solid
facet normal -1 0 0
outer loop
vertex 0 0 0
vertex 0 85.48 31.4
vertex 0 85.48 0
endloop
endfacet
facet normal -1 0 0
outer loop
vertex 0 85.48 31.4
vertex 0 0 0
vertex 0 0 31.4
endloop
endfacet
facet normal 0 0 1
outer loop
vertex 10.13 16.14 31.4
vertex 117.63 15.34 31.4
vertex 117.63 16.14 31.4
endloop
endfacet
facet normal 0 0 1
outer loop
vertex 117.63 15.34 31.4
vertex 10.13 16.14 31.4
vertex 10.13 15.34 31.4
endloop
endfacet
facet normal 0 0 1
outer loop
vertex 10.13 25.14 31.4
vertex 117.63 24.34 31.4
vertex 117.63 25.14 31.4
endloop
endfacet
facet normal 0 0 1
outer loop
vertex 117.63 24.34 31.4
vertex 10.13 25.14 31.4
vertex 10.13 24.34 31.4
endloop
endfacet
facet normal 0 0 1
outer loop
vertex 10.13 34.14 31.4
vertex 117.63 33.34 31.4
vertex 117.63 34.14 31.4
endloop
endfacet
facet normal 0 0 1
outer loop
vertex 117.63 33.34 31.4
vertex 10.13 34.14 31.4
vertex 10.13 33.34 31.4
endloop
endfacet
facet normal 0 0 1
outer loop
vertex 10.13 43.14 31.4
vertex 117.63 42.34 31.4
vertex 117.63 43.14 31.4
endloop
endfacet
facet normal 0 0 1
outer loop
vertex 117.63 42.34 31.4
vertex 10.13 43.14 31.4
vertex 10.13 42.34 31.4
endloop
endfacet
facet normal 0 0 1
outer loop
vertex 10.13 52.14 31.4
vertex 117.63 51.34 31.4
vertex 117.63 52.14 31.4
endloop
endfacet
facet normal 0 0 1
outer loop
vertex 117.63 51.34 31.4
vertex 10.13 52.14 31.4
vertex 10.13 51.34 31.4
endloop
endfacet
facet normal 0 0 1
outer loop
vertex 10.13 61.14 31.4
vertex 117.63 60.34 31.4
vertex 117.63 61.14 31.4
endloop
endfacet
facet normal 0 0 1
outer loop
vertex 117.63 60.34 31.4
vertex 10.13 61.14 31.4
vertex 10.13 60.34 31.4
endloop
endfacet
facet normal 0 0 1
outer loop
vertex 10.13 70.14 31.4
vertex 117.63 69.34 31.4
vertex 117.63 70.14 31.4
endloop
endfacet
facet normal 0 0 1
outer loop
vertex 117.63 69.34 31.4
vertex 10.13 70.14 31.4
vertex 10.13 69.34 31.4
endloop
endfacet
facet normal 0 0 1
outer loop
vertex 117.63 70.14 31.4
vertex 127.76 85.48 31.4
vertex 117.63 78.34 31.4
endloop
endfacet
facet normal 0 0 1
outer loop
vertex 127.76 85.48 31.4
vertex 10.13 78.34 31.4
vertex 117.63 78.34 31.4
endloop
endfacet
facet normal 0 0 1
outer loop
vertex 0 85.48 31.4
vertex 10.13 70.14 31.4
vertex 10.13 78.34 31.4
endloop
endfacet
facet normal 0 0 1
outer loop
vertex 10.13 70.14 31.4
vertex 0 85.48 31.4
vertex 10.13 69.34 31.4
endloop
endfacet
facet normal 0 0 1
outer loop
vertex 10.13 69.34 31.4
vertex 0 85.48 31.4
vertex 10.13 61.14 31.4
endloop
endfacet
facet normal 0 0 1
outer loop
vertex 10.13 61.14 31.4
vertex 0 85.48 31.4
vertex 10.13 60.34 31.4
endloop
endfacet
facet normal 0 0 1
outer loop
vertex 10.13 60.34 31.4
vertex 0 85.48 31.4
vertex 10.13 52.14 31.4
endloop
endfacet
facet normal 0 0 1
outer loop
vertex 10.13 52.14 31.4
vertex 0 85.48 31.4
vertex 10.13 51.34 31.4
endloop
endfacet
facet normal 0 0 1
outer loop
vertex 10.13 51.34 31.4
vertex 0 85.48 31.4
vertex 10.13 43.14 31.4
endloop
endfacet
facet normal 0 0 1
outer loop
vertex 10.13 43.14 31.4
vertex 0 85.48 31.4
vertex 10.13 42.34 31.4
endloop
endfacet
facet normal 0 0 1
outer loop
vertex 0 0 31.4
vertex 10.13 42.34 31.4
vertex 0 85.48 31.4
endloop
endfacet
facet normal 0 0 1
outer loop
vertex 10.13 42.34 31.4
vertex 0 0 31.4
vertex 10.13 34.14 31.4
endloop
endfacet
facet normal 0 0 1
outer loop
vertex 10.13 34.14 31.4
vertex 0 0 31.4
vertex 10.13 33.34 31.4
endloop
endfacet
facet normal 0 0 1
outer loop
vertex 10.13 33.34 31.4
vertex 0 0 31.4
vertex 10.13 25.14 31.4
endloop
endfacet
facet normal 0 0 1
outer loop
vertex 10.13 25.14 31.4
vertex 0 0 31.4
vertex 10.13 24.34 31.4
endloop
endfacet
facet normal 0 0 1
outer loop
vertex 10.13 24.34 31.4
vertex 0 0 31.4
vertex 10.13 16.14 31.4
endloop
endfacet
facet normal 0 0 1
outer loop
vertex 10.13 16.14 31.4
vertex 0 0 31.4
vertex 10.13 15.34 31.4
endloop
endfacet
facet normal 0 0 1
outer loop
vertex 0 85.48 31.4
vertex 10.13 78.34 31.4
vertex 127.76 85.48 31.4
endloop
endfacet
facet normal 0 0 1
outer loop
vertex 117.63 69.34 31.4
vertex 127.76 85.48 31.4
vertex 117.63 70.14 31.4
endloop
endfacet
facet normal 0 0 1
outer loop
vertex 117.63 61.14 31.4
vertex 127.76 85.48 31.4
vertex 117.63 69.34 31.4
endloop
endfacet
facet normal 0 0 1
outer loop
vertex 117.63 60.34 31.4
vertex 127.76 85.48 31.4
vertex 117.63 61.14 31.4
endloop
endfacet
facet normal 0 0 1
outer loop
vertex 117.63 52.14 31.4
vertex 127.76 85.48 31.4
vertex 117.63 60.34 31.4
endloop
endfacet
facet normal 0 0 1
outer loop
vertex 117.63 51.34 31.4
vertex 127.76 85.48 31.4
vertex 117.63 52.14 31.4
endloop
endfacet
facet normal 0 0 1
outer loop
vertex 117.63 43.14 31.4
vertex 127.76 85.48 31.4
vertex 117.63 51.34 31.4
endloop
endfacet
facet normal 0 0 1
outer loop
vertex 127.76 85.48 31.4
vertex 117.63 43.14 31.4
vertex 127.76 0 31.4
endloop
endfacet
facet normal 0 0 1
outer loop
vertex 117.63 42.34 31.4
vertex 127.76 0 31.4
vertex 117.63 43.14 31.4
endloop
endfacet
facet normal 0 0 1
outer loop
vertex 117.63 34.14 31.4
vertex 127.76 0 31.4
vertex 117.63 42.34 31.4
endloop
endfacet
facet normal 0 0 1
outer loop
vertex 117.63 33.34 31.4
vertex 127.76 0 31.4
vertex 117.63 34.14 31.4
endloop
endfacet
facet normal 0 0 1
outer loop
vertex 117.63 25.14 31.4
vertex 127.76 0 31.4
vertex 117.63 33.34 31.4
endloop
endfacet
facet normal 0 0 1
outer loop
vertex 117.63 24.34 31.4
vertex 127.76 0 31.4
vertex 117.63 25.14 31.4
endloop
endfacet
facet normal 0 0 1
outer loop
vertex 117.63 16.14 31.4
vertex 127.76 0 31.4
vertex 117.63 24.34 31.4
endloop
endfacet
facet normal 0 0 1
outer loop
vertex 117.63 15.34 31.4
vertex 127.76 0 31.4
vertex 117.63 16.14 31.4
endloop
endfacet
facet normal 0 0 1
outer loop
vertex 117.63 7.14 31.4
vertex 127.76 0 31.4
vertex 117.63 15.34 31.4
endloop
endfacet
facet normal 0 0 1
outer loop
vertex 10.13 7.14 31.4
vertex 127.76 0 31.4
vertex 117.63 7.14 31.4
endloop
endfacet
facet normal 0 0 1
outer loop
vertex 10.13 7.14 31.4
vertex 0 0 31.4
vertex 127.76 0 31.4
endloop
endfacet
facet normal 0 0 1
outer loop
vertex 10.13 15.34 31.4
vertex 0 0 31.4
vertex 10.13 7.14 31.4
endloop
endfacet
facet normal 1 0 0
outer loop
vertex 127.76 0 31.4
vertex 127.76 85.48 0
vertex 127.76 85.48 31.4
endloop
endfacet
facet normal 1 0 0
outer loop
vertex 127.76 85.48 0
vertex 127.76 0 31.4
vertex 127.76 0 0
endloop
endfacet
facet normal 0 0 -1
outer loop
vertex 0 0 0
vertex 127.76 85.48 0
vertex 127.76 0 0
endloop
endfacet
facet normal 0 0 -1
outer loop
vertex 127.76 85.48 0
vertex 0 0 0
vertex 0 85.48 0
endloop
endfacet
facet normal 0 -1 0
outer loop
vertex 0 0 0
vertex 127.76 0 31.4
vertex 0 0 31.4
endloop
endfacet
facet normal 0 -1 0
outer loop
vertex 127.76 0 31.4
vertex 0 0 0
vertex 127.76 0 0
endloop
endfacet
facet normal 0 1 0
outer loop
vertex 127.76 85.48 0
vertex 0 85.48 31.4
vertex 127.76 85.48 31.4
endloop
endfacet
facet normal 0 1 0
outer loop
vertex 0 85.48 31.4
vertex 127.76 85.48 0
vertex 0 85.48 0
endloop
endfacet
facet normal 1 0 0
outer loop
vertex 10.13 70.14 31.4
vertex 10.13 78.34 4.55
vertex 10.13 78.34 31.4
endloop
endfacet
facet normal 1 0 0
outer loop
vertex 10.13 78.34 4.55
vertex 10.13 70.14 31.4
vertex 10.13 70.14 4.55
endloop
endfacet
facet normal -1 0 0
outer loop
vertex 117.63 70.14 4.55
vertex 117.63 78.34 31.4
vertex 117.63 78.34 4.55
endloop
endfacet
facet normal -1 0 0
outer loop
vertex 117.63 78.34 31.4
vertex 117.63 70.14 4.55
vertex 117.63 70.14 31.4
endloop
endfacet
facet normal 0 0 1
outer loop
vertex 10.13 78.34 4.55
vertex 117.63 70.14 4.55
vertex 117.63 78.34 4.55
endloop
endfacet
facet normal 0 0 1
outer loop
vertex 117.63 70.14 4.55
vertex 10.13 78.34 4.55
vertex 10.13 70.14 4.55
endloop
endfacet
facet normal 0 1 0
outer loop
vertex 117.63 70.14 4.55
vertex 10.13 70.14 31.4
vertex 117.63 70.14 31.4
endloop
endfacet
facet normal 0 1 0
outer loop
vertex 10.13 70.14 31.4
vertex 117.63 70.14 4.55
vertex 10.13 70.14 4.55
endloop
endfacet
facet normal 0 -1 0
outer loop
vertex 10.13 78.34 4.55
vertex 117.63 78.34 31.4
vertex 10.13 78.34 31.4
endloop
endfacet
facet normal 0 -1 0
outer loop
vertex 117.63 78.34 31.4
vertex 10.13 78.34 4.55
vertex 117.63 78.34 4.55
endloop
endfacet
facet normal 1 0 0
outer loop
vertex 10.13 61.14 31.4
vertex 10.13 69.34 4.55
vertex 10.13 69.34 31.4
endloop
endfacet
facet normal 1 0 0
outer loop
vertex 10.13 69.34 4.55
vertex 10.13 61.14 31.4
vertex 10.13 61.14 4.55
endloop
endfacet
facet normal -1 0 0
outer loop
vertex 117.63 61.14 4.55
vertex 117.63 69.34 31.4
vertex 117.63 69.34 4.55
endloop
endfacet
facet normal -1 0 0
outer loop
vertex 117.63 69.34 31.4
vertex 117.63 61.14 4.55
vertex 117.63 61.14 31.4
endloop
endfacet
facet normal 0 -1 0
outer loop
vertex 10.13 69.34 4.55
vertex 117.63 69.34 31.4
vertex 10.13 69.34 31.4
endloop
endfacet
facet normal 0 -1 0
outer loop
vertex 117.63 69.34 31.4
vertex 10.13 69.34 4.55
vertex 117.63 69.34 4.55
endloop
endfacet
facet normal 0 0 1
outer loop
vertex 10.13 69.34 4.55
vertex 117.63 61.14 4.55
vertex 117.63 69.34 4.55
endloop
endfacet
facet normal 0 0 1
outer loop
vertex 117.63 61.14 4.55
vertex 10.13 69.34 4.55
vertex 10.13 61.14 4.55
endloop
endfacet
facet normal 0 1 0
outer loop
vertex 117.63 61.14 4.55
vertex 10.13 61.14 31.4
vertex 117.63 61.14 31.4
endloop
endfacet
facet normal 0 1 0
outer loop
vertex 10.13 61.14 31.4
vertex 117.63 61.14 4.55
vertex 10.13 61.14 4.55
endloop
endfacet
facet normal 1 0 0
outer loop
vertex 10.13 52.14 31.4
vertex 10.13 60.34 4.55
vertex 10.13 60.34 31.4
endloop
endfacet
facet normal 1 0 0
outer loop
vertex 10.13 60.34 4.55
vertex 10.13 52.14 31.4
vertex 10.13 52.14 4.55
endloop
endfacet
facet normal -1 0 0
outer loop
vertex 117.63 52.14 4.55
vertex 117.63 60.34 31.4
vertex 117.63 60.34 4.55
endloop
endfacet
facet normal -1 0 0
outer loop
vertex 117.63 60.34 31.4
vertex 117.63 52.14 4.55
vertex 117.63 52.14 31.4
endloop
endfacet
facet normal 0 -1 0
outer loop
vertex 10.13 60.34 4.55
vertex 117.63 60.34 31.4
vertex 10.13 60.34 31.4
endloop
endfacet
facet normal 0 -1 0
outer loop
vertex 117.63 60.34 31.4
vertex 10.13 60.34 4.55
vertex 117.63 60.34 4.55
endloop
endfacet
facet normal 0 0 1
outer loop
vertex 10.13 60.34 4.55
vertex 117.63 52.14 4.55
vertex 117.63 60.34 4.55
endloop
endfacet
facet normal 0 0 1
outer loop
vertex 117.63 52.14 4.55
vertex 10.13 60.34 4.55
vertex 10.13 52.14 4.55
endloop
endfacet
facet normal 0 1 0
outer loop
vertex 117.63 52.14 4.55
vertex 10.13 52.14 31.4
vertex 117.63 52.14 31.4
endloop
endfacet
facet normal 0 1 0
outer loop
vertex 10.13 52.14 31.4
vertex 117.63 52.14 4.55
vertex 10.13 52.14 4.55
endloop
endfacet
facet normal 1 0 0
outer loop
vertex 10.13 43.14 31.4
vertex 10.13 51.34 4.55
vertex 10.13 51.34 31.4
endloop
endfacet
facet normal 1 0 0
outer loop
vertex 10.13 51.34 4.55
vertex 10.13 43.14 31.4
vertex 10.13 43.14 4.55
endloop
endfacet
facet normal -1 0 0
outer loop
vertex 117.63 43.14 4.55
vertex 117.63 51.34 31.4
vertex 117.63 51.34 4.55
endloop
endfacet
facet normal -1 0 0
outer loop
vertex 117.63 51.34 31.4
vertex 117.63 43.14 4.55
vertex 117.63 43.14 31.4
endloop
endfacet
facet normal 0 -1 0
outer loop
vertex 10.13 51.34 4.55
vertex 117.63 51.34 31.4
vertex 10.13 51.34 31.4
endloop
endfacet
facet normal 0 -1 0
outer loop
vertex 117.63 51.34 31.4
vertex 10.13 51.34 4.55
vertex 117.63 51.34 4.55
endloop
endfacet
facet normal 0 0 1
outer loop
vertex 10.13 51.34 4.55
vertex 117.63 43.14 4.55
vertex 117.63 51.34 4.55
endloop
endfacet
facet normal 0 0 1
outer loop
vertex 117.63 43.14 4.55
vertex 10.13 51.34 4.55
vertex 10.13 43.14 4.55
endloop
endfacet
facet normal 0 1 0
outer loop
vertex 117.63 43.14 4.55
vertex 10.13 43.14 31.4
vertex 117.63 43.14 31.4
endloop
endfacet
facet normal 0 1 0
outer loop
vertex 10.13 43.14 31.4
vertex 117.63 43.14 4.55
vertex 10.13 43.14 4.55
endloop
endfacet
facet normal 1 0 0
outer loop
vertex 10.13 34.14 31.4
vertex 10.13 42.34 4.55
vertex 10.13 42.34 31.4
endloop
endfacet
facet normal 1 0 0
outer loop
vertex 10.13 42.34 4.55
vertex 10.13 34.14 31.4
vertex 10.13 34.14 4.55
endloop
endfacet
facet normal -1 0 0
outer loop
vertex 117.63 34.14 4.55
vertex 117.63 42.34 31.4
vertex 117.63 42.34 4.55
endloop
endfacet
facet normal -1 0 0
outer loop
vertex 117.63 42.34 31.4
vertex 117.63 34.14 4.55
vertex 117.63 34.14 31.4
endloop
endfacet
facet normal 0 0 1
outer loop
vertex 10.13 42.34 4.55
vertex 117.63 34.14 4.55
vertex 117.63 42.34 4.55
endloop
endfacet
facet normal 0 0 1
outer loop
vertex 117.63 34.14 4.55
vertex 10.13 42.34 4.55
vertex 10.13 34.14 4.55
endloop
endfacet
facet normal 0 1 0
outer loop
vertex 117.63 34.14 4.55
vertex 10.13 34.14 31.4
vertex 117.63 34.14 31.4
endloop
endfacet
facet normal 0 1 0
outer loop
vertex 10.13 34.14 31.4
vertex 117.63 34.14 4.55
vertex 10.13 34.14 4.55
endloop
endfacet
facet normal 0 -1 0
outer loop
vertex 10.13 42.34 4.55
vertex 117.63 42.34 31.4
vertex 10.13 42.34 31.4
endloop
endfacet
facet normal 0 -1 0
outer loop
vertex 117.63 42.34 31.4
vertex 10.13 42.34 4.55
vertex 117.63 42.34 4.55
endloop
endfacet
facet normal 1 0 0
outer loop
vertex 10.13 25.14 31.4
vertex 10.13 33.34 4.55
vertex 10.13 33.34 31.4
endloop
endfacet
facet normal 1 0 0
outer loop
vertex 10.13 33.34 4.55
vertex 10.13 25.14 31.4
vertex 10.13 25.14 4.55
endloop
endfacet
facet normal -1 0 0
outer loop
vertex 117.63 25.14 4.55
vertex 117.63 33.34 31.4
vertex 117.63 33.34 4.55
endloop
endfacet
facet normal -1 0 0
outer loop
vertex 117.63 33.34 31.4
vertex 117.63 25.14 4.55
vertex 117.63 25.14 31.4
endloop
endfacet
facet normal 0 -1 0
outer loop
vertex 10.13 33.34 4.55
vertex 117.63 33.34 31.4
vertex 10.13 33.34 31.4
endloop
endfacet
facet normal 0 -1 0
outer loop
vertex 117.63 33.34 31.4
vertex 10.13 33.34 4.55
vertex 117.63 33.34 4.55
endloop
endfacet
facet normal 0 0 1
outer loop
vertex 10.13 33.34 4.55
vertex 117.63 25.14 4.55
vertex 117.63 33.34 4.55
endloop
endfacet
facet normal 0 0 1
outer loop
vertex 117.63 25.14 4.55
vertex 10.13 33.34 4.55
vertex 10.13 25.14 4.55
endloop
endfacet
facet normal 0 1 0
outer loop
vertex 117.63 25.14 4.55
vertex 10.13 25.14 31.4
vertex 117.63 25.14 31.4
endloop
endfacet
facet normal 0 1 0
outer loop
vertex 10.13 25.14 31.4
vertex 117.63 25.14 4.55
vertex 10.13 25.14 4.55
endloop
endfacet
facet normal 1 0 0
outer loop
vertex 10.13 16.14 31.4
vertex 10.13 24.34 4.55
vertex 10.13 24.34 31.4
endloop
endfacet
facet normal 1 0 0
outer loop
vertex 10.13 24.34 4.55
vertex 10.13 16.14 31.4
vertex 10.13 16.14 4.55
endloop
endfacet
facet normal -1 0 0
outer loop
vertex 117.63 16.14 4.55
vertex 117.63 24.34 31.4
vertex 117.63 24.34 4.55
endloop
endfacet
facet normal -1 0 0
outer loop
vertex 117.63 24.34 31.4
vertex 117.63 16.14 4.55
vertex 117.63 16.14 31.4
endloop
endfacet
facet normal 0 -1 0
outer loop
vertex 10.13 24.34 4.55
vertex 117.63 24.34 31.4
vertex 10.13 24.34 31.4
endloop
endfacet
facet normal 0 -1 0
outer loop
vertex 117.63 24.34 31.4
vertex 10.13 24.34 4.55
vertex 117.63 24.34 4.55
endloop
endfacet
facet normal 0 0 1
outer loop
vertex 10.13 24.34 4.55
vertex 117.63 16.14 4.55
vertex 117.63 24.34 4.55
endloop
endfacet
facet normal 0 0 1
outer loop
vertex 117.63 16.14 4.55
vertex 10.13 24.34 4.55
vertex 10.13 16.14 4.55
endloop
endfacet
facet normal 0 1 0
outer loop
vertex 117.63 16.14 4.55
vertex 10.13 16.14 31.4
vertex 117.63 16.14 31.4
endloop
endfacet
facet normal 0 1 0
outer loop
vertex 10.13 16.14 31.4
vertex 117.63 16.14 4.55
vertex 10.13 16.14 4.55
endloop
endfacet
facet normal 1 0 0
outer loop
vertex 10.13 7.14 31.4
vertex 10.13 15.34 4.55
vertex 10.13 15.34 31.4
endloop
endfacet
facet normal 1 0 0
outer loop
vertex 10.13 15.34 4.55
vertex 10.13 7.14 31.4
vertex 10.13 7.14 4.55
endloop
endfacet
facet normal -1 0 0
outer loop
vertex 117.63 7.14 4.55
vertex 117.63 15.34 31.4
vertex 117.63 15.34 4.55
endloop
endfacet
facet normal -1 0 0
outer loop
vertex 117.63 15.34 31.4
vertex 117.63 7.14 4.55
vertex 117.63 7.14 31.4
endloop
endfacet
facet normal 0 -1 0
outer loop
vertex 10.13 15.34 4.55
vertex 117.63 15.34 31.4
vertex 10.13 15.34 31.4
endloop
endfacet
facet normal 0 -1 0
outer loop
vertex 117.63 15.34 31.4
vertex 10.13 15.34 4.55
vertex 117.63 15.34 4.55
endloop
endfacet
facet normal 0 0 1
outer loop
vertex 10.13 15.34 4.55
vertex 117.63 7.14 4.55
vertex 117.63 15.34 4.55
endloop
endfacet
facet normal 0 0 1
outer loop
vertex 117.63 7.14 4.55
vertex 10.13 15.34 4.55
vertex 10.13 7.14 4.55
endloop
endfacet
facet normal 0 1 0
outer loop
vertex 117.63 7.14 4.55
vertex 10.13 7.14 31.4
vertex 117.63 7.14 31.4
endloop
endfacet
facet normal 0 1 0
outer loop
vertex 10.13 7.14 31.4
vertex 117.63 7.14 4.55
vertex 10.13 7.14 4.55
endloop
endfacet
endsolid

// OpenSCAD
// NEST 8 Well Reservoir 22 mL
// loadName: nest_8_reservoir_22ml
// Auto-generated by labware_to_stl.py from Opentrons V2 labware definition

$fn = 64;

difference() {
    // ── Labware body ──────────────────────────────────────────────
    cube([127.7600, 85.4800, 31.4000]);

    // ── Well cutouts ──────────────────────────────────────────────
    // Well A1
    translate([10.1300, 70.1400, 4.5500])
        cube([107.5000, 8.2000, 27.8500]);
    // Well B1
    translate([10.1300, 61.1400, 4.5500])
        cube([107.5000, 8.2000, 27.8500]);
    // Well C1
    translate([10.1300, 52.1400, 4.5500])
        cube([107.5000, 8.2000, 27.8500]);
    // Well D1
    translate([10.1300, 43.1400, 4.5500])
        cube([107.5000, 8.2000, 27.8500]);
    // Well E1
    translate([10.1300, 34.1400, 4.5500])
        cube([107.5000, 8.2000, 27.8500]);
    // Well F1
    translate([10.1300, 25.1400, 4.5500])
        cube([107.5000, 8.2000, 27.8500]);
    // Well G1
    translate([10.1300, 16.1400, 4.5500])
        cube([107.5000, 8.2000, 27.8500]);
    // Well H1
    translate([10.1300, 7.1400, 4.5500])
        cube([107.5000, 8.2000, 27.8500]);
}
